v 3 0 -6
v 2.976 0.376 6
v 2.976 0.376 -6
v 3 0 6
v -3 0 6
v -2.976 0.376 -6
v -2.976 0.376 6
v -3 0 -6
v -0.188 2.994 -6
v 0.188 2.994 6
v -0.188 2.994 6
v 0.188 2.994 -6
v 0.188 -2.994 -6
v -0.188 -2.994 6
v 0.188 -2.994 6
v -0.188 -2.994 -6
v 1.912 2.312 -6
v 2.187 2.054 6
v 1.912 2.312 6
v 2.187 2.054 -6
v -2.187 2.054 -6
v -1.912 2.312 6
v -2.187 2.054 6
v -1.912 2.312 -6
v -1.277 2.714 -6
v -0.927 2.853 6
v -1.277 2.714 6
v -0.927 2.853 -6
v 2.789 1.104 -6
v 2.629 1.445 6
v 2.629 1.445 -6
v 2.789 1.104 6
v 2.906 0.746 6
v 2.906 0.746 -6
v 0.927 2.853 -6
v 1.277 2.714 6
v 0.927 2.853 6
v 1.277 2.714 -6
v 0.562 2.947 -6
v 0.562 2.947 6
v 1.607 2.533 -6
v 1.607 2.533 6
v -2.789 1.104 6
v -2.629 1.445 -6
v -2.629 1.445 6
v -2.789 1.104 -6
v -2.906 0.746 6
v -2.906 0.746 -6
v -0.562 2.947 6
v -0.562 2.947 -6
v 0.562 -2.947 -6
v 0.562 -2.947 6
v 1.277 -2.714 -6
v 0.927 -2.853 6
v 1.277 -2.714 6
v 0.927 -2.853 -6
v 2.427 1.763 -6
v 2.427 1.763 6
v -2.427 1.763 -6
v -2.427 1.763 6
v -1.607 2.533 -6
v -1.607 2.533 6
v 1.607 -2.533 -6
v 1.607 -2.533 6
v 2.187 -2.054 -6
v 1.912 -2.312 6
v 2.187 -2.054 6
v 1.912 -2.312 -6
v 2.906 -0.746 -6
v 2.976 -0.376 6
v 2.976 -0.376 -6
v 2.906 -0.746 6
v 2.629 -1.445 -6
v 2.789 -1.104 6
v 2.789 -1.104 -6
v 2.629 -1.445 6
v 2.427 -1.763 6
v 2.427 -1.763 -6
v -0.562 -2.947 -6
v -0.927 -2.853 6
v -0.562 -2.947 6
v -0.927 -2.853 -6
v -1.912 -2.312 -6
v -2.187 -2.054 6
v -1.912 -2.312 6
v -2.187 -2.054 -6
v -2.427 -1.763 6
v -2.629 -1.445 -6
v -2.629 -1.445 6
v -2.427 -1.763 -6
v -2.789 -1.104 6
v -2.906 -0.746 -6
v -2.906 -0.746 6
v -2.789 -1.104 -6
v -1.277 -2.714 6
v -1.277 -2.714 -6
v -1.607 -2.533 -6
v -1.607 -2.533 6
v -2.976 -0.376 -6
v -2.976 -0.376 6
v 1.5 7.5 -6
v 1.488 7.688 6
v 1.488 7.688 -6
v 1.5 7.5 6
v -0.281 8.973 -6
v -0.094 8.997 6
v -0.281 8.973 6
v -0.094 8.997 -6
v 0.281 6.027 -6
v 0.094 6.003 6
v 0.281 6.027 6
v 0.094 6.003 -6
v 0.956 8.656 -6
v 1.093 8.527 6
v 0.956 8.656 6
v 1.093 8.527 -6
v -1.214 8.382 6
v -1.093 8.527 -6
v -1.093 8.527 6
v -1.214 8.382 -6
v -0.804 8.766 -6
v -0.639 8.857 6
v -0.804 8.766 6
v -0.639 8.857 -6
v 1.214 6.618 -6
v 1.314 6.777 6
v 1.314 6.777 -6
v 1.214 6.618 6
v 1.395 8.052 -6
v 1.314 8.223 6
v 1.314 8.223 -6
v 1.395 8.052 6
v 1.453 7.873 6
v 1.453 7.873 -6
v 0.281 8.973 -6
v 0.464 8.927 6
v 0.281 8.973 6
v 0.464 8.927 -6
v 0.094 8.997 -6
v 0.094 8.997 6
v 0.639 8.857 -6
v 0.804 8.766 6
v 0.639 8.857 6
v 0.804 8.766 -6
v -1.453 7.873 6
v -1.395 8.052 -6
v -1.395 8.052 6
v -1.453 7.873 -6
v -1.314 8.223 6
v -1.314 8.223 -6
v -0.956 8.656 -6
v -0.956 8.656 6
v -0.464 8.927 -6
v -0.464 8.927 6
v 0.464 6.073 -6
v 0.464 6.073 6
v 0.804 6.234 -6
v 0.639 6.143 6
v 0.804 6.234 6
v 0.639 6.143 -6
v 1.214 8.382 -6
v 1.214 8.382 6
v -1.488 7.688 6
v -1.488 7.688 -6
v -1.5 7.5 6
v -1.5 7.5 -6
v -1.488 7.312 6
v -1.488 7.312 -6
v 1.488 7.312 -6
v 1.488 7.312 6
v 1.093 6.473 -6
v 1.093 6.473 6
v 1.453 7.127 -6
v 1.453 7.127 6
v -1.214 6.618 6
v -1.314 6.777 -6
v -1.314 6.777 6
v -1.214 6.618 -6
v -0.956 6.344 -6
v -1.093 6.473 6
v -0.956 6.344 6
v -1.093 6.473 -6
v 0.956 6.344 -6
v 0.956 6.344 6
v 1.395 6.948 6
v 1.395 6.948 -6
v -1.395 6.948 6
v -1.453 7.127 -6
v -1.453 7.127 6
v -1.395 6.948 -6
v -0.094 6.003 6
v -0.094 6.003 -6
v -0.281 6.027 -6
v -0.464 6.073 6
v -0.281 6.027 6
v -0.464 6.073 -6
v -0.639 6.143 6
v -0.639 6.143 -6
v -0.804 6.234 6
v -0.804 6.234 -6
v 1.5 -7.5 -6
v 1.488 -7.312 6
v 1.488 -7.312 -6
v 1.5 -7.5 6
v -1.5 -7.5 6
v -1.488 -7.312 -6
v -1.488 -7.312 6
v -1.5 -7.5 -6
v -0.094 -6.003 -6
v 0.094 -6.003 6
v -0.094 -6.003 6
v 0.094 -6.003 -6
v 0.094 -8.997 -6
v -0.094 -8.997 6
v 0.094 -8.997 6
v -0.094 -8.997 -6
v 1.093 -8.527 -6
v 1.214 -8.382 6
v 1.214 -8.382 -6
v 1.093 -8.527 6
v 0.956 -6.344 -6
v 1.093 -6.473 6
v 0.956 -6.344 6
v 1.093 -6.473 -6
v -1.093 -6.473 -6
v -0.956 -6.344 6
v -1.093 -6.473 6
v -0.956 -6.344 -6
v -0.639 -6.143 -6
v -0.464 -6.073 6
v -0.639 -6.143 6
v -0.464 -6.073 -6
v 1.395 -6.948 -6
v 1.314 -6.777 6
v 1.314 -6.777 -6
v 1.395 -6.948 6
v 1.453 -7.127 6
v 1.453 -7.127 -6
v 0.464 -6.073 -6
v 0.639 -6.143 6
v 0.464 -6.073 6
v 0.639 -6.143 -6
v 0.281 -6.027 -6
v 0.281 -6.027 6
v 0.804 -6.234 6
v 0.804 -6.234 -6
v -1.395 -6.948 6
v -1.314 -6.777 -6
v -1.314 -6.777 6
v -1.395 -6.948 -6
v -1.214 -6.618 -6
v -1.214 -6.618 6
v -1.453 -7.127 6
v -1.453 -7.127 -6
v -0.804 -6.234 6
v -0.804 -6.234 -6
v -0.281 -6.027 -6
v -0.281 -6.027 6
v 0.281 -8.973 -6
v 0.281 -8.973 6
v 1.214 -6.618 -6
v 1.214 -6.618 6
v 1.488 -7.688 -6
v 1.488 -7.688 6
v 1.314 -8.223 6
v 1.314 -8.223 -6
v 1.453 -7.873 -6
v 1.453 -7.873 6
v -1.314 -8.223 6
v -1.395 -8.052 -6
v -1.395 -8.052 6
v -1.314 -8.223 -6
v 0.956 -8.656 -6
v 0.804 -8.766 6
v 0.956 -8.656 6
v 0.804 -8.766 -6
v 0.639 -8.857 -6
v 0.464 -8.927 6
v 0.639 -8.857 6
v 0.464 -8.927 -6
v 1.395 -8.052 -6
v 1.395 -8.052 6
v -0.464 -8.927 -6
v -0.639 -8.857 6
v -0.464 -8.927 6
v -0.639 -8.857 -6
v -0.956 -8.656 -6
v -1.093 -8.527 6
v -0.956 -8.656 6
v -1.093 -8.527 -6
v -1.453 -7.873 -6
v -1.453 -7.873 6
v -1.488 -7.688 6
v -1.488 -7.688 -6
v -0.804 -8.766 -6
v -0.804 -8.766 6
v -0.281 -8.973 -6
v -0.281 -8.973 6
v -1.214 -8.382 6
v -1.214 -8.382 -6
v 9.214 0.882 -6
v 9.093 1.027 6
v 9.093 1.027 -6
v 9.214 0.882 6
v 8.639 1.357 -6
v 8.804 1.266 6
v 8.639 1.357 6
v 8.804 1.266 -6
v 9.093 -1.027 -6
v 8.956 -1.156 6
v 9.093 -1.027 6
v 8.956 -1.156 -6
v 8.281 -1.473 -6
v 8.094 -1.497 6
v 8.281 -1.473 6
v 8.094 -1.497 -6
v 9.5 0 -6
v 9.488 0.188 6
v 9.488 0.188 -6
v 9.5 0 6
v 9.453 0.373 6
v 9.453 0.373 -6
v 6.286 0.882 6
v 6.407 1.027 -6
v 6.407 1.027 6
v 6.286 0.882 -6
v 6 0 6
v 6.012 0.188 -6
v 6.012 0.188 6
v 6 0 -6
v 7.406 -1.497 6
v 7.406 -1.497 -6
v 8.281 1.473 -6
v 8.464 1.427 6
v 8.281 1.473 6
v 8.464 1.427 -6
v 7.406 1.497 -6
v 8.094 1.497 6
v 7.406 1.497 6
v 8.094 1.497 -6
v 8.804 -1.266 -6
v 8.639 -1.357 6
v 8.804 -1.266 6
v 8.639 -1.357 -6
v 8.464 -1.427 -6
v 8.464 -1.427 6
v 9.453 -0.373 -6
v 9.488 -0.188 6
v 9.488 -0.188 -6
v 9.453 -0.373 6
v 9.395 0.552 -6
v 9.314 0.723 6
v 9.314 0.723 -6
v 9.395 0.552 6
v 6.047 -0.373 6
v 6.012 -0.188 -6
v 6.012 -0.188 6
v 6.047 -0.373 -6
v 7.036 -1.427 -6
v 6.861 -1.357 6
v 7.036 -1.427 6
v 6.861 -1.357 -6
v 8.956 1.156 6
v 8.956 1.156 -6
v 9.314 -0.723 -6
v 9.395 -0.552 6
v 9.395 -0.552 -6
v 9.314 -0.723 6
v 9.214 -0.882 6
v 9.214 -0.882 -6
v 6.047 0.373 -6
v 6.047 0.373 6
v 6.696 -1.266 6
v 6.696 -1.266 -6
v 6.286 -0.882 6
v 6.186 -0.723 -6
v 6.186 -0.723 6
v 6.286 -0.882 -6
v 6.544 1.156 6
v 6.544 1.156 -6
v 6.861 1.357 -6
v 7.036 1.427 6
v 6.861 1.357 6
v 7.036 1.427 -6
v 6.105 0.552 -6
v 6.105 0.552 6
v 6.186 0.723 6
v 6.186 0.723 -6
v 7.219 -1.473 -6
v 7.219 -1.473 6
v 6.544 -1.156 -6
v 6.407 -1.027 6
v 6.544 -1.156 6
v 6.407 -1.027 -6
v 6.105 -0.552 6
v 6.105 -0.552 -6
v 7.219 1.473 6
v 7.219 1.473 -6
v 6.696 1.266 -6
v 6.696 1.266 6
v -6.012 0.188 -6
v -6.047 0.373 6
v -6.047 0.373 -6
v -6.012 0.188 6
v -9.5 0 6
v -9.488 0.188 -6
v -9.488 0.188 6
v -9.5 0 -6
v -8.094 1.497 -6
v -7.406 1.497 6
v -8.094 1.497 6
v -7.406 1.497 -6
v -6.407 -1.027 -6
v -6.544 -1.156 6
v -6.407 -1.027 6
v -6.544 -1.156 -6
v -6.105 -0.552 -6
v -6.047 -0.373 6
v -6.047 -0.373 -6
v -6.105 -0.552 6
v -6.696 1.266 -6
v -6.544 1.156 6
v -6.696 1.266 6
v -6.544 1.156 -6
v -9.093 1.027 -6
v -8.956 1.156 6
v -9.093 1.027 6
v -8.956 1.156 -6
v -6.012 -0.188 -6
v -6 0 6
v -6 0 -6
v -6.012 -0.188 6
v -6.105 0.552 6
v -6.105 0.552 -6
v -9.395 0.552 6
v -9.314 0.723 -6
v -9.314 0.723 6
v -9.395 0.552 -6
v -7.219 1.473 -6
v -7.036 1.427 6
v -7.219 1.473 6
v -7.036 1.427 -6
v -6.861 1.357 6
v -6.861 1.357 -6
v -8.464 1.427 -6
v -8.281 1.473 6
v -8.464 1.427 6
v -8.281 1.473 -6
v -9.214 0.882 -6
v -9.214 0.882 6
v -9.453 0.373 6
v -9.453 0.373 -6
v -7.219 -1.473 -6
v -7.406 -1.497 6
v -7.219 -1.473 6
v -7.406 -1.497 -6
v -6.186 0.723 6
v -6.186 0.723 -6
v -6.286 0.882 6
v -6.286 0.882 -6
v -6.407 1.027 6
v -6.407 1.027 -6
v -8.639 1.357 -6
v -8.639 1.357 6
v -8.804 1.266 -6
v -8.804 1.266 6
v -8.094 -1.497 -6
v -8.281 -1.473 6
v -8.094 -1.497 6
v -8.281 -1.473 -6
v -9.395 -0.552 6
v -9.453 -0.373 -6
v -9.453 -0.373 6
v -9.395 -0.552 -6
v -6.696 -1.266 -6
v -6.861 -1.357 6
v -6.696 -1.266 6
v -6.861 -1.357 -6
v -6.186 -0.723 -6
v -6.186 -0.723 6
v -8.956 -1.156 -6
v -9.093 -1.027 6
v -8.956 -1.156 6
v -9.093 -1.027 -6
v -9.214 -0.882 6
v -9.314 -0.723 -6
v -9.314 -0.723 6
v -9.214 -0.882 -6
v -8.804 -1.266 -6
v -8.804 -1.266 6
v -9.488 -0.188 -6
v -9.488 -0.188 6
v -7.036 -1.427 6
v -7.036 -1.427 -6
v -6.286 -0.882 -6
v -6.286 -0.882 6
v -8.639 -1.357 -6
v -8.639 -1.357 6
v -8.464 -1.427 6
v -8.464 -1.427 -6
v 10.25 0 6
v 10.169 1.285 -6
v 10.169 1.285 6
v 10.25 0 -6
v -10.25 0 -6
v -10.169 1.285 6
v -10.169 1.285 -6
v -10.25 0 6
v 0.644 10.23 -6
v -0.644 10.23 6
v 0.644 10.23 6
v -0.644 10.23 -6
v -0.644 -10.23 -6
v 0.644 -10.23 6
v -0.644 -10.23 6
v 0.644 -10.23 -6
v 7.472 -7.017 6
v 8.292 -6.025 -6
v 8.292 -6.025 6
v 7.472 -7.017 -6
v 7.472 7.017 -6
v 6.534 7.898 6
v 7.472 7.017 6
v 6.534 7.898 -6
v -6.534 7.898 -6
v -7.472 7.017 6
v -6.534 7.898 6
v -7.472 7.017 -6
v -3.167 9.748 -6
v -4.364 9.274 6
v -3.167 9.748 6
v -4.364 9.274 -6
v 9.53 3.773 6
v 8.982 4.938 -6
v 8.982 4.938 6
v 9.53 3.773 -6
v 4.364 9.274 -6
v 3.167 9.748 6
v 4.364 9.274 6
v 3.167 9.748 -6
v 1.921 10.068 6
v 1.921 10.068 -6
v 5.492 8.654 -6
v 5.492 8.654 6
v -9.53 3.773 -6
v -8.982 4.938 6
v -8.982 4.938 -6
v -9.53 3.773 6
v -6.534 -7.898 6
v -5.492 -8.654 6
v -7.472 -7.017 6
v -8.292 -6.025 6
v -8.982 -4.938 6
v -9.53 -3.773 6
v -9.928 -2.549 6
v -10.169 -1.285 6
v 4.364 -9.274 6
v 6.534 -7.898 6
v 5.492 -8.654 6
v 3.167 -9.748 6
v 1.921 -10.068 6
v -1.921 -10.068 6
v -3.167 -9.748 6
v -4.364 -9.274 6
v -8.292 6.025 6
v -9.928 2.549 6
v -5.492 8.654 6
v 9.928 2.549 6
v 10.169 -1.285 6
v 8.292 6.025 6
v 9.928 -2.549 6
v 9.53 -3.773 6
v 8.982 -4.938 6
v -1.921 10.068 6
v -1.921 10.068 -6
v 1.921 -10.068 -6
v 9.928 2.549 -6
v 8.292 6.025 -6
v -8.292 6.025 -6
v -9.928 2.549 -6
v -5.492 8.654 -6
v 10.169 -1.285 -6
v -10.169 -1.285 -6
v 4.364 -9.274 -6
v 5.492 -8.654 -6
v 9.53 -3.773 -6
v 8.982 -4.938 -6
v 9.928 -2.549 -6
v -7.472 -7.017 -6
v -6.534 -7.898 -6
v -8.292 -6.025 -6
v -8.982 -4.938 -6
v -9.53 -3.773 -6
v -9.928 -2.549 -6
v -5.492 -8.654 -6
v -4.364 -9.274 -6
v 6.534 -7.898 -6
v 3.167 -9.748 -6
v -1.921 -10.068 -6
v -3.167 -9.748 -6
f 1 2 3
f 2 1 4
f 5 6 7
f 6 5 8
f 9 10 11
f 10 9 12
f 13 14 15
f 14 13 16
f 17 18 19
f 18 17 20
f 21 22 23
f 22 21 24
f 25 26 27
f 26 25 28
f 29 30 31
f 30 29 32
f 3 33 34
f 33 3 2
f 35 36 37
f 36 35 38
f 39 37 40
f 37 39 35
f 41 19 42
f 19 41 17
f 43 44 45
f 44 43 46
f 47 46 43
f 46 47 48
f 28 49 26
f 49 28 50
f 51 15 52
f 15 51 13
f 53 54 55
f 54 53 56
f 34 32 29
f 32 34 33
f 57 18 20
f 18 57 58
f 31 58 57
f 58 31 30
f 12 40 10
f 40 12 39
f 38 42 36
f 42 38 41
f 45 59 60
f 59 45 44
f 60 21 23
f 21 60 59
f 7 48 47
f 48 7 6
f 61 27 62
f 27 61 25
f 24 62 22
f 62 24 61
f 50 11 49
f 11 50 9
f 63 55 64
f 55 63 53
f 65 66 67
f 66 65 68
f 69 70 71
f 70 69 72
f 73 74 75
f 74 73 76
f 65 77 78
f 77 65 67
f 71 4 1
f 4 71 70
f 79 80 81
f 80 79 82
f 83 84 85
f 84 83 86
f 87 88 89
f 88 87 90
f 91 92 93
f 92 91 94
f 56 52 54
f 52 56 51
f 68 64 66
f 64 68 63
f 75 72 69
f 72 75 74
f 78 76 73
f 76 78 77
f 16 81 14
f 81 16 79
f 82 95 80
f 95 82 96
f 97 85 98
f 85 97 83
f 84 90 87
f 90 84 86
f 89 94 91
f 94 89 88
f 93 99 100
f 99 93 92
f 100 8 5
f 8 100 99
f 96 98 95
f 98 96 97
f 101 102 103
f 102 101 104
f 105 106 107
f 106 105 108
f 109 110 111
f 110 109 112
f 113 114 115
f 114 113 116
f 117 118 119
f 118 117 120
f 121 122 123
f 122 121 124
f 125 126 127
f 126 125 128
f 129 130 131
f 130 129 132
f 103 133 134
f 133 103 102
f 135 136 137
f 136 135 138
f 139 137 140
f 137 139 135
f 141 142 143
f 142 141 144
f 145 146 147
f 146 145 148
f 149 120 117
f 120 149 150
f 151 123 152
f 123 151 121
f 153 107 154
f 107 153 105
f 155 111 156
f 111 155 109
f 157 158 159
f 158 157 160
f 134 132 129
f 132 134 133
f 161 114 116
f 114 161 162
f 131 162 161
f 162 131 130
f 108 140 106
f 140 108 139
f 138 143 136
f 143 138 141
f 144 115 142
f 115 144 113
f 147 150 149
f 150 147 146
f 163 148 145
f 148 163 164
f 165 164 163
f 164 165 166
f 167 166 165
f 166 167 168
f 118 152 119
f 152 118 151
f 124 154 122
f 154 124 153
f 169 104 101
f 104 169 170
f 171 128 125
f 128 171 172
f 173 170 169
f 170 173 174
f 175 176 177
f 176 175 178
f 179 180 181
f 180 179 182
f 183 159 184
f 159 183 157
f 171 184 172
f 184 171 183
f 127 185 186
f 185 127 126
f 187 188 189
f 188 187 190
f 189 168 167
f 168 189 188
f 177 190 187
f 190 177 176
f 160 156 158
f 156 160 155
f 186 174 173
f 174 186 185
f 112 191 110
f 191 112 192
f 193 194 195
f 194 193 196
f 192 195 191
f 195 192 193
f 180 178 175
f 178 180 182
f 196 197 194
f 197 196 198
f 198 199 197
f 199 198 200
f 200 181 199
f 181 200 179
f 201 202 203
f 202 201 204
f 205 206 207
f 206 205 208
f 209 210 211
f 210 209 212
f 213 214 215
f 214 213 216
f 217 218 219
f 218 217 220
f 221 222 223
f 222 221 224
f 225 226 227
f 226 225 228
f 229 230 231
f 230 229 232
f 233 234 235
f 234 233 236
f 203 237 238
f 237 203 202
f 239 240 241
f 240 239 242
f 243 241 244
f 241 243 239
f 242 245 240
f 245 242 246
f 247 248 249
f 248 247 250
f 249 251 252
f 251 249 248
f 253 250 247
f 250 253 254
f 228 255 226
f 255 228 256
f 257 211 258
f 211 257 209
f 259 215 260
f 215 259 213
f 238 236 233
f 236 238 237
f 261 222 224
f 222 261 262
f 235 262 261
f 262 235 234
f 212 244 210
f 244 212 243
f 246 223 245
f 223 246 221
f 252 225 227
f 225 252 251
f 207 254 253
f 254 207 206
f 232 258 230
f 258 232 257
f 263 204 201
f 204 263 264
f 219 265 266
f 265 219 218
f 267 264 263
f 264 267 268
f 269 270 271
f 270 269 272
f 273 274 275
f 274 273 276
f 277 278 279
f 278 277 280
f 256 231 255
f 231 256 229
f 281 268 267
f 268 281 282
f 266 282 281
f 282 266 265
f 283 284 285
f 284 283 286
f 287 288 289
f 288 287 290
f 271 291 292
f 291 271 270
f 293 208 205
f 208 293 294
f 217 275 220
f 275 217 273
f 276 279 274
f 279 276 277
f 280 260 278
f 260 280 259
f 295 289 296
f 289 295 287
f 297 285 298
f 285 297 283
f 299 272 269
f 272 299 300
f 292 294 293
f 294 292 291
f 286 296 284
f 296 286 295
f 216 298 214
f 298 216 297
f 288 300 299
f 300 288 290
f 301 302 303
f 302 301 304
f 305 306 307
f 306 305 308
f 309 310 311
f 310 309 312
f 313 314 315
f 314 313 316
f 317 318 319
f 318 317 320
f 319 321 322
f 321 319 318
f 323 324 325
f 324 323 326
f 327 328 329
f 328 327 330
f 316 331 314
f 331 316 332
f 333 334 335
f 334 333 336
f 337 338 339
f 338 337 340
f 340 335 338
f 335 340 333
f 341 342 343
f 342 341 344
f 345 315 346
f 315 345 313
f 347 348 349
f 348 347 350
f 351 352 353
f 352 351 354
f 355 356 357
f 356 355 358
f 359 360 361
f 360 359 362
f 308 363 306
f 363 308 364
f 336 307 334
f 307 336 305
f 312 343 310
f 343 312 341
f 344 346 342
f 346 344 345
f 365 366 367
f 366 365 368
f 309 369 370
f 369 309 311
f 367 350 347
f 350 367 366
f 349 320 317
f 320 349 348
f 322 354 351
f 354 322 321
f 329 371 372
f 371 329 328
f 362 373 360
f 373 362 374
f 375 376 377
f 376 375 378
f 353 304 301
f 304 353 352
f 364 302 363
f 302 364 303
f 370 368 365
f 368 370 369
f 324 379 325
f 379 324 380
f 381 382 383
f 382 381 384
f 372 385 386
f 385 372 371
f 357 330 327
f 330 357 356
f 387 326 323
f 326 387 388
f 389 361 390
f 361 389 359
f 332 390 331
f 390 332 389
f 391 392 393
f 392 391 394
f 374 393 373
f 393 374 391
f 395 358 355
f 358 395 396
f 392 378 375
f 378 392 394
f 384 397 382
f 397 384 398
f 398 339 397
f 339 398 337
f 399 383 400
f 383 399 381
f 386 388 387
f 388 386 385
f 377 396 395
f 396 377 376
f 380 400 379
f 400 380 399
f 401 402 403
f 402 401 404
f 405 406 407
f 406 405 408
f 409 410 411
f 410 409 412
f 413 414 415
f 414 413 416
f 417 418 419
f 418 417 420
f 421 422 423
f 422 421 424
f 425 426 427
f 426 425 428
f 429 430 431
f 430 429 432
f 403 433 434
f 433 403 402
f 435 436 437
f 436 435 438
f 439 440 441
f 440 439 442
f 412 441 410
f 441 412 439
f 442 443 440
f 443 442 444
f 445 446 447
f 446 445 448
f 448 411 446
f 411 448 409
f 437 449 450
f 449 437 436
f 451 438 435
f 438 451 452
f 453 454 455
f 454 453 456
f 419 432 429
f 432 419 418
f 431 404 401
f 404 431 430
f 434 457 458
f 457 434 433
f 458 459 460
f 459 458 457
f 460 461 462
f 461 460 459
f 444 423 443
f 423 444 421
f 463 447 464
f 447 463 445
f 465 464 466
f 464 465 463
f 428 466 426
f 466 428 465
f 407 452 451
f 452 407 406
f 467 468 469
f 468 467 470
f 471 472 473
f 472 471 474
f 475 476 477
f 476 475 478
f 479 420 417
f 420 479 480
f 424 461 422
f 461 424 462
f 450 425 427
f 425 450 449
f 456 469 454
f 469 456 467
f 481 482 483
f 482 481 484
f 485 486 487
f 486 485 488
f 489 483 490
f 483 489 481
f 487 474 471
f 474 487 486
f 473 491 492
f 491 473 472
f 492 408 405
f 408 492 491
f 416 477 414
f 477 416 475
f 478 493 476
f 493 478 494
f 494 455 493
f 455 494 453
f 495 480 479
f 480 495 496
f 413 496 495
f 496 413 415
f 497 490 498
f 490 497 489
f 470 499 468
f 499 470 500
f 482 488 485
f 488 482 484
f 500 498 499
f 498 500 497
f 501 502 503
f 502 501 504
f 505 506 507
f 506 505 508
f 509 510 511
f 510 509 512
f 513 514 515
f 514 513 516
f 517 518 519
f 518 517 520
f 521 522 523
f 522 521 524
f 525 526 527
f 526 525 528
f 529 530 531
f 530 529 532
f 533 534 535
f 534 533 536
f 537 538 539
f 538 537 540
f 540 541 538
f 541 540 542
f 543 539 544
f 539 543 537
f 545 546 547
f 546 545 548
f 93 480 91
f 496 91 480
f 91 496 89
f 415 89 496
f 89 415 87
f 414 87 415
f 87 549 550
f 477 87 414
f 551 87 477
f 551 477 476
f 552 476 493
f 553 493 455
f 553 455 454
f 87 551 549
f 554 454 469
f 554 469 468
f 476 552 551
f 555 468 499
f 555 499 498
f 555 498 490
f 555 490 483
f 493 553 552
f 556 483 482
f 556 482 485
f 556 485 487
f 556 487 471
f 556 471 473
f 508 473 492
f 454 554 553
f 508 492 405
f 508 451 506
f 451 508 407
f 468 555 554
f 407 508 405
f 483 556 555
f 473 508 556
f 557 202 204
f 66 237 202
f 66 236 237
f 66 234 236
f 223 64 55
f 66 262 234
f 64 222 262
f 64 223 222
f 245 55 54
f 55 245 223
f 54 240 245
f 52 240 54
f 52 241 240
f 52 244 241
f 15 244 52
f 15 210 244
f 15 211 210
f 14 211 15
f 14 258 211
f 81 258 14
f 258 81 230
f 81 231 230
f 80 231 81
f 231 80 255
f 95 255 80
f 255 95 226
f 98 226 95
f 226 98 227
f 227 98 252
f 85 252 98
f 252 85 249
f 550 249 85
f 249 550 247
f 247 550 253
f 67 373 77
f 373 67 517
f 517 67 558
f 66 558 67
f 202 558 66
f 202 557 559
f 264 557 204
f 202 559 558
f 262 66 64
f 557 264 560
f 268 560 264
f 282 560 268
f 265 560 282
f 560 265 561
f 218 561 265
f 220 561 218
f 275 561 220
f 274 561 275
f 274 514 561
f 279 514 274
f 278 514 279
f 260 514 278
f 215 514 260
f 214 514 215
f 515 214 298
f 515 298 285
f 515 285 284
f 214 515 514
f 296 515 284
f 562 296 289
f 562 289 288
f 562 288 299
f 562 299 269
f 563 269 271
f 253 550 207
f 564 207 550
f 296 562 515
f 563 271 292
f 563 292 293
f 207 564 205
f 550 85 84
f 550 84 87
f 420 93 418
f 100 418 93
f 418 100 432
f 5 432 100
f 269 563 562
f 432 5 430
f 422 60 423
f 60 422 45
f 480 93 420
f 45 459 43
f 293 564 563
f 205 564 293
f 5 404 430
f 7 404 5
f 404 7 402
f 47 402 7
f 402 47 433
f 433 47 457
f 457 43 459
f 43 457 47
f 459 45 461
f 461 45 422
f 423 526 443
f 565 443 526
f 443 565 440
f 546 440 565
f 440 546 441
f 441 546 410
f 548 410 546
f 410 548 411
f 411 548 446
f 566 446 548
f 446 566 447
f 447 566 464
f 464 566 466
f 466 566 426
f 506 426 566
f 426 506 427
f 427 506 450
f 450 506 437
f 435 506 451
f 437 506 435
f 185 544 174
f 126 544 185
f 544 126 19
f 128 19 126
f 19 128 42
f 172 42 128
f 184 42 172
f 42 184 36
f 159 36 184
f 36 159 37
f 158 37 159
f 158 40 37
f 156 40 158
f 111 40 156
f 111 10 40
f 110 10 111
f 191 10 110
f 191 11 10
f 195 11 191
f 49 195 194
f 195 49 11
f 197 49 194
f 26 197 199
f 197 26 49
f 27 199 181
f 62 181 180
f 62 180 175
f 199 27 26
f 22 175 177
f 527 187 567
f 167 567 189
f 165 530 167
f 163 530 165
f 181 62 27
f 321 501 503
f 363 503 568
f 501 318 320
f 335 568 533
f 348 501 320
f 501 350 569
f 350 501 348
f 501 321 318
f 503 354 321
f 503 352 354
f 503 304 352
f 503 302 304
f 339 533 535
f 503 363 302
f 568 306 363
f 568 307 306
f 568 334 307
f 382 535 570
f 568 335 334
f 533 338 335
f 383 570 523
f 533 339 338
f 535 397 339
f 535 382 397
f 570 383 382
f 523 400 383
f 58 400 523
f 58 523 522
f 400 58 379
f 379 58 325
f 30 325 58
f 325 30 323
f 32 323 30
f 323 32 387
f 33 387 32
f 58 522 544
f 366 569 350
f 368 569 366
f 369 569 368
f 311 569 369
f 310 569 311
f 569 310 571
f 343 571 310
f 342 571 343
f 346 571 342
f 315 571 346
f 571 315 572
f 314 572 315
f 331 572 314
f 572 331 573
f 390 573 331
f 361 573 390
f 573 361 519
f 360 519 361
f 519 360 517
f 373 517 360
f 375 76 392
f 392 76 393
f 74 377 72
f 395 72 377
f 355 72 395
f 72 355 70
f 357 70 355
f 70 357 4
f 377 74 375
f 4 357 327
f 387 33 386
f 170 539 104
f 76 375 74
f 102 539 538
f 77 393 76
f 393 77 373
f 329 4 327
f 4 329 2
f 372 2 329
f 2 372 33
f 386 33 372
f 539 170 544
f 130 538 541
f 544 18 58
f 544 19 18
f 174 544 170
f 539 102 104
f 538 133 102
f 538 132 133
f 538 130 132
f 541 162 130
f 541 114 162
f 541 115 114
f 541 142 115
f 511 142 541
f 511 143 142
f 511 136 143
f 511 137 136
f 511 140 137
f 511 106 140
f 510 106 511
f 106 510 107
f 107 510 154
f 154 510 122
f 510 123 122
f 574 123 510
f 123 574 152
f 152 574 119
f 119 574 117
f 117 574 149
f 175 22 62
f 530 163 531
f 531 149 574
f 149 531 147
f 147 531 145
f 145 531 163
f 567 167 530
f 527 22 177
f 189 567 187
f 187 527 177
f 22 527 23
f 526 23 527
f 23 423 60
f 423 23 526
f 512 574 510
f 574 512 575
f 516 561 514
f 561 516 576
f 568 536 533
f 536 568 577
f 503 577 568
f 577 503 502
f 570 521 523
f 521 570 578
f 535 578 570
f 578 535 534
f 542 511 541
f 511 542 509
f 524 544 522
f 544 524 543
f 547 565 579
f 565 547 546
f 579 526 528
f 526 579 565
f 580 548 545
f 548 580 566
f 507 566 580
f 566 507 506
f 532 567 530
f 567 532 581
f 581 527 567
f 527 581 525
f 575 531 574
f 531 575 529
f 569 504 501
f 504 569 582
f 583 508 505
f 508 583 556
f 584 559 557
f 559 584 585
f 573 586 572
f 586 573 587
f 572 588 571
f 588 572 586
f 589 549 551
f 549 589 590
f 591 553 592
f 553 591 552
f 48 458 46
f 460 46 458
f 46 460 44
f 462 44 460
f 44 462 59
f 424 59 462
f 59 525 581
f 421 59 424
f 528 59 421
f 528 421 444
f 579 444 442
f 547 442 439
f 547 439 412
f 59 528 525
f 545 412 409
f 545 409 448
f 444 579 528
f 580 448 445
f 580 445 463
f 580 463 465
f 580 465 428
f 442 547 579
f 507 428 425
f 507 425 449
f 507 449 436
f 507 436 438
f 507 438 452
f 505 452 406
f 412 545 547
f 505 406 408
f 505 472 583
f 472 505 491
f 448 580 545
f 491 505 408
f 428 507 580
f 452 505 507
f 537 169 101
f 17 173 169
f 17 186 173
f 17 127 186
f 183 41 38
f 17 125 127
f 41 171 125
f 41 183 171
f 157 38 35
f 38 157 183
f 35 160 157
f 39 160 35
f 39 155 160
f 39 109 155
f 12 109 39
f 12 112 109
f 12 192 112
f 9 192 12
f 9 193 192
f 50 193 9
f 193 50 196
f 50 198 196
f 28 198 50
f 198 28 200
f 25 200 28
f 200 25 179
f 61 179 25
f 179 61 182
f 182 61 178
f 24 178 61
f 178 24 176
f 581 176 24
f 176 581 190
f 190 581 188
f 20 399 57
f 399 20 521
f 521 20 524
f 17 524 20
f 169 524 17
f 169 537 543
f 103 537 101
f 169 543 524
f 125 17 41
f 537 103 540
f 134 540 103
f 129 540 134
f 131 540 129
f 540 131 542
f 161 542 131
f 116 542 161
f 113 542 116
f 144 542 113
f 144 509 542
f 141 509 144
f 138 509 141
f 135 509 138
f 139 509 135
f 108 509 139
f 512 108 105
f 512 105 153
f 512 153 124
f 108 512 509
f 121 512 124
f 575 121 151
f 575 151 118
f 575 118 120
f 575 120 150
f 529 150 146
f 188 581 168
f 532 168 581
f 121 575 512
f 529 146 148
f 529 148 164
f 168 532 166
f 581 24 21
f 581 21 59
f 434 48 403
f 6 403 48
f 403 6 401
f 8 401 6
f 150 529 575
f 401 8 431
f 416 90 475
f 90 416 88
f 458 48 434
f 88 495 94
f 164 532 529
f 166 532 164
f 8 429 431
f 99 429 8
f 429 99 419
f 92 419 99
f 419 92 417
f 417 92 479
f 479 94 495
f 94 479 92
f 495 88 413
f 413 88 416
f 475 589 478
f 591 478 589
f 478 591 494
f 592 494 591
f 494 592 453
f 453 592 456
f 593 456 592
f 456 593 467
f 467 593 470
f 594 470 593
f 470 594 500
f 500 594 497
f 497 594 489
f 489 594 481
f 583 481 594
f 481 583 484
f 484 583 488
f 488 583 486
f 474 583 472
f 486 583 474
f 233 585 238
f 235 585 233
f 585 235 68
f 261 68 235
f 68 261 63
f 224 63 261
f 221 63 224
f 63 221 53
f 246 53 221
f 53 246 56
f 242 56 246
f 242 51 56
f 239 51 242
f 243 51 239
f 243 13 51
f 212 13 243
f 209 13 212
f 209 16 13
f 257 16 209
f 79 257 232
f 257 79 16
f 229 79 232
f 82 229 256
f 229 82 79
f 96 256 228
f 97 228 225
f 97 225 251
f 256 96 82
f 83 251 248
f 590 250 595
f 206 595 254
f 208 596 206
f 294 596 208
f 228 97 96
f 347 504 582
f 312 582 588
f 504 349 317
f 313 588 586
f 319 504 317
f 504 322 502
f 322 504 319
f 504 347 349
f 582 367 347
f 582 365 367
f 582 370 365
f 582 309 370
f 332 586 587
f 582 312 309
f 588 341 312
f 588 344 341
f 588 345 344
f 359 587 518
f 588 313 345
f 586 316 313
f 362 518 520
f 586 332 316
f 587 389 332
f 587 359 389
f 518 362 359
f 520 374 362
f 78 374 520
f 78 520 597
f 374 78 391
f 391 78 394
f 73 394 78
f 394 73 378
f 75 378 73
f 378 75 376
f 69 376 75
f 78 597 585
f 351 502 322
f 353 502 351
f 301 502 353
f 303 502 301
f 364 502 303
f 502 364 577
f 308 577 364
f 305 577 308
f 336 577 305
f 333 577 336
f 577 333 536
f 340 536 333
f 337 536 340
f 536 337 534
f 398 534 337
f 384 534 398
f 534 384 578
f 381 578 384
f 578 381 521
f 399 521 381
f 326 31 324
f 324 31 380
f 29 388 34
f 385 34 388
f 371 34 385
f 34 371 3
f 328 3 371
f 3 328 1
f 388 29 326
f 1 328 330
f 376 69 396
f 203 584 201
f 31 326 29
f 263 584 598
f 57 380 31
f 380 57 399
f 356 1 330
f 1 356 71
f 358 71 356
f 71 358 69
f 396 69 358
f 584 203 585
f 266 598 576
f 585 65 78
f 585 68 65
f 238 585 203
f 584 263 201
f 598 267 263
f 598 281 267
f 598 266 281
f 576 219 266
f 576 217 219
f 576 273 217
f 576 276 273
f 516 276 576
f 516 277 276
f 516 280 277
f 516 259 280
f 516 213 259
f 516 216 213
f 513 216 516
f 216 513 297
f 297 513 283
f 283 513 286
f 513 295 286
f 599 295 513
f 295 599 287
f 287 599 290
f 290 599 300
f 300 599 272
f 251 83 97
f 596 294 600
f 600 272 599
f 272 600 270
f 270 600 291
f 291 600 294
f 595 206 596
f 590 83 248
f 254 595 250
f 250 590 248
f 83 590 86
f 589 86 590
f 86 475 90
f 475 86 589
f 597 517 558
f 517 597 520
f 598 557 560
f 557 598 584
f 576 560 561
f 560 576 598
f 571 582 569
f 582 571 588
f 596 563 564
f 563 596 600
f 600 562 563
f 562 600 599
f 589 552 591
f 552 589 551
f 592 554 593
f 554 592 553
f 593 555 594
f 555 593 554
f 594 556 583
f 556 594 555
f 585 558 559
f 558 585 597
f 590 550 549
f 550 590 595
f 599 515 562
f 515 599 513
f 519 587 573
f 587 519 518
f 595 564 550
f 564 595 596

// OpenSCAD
$fn = 50;


difference() {
	union() {
		translate(v = [0, 0, -6.0000000000]) {
			rotate(a = [0, 0, 0]) {
				cylinder(h = 12, r = 10.2500000000);
			}
		}
	}
	union() {
		translate(v = [0, 0, -125.0000000000]) {
			rotate(a = [0, 0, 0]) {
				cylinder(h = 250, r = 3.0000000000);
			}
		}
		translate(v = [0, 7.5000000000, -125.0000000000]) {
			rotate(a = [0, 0, 0]) {
				cylinder(h = 250, r = 1.5000000000);
			}
		}
		translate(v = [0, -7.5000000000, -125.0000000000]) {
			rotate(a = [0, 0, 0]) {
				cylinder(h = 250, r = 1.5000000000);
			}
		}
		translate(v = [7.7500000000, 0, -125.0000000000]) {
			rotate(a = [0, 0, 0]) {
				hull() {
					translate(v = [0.2500000000, 0, 0]) {
						rotate(a = [0, 0, 0]) {
							translate(v = [0, 0, 0]) {
								rotate(a = [0, 0, 0]) {
									cylinder(h = 250, r = 1.5000000000);
								}
							}
						}
					}
					translate(v = [-0.2500000000, 0, 0]) {
						rotate(a = [0, 0, 0]) {
							translate(v = [0, 0, 0]) {
								rotate(a = [0, 0, 0]) {
									cylinder(h = 250, r = 1.5000000000);
								}
							}
						}
					}
				}
			}
		}
		translate(v = [-7.7500000000, 0, -125.0000000000]) {
			rotate(a = [0, 0, 0]) {
				hull() {
					translate(v = [0.2500000000, 0, 0]) {
						rotate(a = [0, 0, 0]) {
							translate(v = [0, 0, 0]) {
								rotate(a = [0, 0, 0]) {
									cylinder(h = 250, r = 1.5000000000);
								}
							}
						}
					}
					translate(v = [-0.2500000000, 0, 0]) {
						rotate(a = [0, 0, 0]) {
							translate(v = [0, 0, 0]) {
								rotate(a = [0, 0, 0]) {
									cylinder(h = 250, r = 1.5000000000);
								}
							}
						}
					}
				}
			}
		}
	}
}
